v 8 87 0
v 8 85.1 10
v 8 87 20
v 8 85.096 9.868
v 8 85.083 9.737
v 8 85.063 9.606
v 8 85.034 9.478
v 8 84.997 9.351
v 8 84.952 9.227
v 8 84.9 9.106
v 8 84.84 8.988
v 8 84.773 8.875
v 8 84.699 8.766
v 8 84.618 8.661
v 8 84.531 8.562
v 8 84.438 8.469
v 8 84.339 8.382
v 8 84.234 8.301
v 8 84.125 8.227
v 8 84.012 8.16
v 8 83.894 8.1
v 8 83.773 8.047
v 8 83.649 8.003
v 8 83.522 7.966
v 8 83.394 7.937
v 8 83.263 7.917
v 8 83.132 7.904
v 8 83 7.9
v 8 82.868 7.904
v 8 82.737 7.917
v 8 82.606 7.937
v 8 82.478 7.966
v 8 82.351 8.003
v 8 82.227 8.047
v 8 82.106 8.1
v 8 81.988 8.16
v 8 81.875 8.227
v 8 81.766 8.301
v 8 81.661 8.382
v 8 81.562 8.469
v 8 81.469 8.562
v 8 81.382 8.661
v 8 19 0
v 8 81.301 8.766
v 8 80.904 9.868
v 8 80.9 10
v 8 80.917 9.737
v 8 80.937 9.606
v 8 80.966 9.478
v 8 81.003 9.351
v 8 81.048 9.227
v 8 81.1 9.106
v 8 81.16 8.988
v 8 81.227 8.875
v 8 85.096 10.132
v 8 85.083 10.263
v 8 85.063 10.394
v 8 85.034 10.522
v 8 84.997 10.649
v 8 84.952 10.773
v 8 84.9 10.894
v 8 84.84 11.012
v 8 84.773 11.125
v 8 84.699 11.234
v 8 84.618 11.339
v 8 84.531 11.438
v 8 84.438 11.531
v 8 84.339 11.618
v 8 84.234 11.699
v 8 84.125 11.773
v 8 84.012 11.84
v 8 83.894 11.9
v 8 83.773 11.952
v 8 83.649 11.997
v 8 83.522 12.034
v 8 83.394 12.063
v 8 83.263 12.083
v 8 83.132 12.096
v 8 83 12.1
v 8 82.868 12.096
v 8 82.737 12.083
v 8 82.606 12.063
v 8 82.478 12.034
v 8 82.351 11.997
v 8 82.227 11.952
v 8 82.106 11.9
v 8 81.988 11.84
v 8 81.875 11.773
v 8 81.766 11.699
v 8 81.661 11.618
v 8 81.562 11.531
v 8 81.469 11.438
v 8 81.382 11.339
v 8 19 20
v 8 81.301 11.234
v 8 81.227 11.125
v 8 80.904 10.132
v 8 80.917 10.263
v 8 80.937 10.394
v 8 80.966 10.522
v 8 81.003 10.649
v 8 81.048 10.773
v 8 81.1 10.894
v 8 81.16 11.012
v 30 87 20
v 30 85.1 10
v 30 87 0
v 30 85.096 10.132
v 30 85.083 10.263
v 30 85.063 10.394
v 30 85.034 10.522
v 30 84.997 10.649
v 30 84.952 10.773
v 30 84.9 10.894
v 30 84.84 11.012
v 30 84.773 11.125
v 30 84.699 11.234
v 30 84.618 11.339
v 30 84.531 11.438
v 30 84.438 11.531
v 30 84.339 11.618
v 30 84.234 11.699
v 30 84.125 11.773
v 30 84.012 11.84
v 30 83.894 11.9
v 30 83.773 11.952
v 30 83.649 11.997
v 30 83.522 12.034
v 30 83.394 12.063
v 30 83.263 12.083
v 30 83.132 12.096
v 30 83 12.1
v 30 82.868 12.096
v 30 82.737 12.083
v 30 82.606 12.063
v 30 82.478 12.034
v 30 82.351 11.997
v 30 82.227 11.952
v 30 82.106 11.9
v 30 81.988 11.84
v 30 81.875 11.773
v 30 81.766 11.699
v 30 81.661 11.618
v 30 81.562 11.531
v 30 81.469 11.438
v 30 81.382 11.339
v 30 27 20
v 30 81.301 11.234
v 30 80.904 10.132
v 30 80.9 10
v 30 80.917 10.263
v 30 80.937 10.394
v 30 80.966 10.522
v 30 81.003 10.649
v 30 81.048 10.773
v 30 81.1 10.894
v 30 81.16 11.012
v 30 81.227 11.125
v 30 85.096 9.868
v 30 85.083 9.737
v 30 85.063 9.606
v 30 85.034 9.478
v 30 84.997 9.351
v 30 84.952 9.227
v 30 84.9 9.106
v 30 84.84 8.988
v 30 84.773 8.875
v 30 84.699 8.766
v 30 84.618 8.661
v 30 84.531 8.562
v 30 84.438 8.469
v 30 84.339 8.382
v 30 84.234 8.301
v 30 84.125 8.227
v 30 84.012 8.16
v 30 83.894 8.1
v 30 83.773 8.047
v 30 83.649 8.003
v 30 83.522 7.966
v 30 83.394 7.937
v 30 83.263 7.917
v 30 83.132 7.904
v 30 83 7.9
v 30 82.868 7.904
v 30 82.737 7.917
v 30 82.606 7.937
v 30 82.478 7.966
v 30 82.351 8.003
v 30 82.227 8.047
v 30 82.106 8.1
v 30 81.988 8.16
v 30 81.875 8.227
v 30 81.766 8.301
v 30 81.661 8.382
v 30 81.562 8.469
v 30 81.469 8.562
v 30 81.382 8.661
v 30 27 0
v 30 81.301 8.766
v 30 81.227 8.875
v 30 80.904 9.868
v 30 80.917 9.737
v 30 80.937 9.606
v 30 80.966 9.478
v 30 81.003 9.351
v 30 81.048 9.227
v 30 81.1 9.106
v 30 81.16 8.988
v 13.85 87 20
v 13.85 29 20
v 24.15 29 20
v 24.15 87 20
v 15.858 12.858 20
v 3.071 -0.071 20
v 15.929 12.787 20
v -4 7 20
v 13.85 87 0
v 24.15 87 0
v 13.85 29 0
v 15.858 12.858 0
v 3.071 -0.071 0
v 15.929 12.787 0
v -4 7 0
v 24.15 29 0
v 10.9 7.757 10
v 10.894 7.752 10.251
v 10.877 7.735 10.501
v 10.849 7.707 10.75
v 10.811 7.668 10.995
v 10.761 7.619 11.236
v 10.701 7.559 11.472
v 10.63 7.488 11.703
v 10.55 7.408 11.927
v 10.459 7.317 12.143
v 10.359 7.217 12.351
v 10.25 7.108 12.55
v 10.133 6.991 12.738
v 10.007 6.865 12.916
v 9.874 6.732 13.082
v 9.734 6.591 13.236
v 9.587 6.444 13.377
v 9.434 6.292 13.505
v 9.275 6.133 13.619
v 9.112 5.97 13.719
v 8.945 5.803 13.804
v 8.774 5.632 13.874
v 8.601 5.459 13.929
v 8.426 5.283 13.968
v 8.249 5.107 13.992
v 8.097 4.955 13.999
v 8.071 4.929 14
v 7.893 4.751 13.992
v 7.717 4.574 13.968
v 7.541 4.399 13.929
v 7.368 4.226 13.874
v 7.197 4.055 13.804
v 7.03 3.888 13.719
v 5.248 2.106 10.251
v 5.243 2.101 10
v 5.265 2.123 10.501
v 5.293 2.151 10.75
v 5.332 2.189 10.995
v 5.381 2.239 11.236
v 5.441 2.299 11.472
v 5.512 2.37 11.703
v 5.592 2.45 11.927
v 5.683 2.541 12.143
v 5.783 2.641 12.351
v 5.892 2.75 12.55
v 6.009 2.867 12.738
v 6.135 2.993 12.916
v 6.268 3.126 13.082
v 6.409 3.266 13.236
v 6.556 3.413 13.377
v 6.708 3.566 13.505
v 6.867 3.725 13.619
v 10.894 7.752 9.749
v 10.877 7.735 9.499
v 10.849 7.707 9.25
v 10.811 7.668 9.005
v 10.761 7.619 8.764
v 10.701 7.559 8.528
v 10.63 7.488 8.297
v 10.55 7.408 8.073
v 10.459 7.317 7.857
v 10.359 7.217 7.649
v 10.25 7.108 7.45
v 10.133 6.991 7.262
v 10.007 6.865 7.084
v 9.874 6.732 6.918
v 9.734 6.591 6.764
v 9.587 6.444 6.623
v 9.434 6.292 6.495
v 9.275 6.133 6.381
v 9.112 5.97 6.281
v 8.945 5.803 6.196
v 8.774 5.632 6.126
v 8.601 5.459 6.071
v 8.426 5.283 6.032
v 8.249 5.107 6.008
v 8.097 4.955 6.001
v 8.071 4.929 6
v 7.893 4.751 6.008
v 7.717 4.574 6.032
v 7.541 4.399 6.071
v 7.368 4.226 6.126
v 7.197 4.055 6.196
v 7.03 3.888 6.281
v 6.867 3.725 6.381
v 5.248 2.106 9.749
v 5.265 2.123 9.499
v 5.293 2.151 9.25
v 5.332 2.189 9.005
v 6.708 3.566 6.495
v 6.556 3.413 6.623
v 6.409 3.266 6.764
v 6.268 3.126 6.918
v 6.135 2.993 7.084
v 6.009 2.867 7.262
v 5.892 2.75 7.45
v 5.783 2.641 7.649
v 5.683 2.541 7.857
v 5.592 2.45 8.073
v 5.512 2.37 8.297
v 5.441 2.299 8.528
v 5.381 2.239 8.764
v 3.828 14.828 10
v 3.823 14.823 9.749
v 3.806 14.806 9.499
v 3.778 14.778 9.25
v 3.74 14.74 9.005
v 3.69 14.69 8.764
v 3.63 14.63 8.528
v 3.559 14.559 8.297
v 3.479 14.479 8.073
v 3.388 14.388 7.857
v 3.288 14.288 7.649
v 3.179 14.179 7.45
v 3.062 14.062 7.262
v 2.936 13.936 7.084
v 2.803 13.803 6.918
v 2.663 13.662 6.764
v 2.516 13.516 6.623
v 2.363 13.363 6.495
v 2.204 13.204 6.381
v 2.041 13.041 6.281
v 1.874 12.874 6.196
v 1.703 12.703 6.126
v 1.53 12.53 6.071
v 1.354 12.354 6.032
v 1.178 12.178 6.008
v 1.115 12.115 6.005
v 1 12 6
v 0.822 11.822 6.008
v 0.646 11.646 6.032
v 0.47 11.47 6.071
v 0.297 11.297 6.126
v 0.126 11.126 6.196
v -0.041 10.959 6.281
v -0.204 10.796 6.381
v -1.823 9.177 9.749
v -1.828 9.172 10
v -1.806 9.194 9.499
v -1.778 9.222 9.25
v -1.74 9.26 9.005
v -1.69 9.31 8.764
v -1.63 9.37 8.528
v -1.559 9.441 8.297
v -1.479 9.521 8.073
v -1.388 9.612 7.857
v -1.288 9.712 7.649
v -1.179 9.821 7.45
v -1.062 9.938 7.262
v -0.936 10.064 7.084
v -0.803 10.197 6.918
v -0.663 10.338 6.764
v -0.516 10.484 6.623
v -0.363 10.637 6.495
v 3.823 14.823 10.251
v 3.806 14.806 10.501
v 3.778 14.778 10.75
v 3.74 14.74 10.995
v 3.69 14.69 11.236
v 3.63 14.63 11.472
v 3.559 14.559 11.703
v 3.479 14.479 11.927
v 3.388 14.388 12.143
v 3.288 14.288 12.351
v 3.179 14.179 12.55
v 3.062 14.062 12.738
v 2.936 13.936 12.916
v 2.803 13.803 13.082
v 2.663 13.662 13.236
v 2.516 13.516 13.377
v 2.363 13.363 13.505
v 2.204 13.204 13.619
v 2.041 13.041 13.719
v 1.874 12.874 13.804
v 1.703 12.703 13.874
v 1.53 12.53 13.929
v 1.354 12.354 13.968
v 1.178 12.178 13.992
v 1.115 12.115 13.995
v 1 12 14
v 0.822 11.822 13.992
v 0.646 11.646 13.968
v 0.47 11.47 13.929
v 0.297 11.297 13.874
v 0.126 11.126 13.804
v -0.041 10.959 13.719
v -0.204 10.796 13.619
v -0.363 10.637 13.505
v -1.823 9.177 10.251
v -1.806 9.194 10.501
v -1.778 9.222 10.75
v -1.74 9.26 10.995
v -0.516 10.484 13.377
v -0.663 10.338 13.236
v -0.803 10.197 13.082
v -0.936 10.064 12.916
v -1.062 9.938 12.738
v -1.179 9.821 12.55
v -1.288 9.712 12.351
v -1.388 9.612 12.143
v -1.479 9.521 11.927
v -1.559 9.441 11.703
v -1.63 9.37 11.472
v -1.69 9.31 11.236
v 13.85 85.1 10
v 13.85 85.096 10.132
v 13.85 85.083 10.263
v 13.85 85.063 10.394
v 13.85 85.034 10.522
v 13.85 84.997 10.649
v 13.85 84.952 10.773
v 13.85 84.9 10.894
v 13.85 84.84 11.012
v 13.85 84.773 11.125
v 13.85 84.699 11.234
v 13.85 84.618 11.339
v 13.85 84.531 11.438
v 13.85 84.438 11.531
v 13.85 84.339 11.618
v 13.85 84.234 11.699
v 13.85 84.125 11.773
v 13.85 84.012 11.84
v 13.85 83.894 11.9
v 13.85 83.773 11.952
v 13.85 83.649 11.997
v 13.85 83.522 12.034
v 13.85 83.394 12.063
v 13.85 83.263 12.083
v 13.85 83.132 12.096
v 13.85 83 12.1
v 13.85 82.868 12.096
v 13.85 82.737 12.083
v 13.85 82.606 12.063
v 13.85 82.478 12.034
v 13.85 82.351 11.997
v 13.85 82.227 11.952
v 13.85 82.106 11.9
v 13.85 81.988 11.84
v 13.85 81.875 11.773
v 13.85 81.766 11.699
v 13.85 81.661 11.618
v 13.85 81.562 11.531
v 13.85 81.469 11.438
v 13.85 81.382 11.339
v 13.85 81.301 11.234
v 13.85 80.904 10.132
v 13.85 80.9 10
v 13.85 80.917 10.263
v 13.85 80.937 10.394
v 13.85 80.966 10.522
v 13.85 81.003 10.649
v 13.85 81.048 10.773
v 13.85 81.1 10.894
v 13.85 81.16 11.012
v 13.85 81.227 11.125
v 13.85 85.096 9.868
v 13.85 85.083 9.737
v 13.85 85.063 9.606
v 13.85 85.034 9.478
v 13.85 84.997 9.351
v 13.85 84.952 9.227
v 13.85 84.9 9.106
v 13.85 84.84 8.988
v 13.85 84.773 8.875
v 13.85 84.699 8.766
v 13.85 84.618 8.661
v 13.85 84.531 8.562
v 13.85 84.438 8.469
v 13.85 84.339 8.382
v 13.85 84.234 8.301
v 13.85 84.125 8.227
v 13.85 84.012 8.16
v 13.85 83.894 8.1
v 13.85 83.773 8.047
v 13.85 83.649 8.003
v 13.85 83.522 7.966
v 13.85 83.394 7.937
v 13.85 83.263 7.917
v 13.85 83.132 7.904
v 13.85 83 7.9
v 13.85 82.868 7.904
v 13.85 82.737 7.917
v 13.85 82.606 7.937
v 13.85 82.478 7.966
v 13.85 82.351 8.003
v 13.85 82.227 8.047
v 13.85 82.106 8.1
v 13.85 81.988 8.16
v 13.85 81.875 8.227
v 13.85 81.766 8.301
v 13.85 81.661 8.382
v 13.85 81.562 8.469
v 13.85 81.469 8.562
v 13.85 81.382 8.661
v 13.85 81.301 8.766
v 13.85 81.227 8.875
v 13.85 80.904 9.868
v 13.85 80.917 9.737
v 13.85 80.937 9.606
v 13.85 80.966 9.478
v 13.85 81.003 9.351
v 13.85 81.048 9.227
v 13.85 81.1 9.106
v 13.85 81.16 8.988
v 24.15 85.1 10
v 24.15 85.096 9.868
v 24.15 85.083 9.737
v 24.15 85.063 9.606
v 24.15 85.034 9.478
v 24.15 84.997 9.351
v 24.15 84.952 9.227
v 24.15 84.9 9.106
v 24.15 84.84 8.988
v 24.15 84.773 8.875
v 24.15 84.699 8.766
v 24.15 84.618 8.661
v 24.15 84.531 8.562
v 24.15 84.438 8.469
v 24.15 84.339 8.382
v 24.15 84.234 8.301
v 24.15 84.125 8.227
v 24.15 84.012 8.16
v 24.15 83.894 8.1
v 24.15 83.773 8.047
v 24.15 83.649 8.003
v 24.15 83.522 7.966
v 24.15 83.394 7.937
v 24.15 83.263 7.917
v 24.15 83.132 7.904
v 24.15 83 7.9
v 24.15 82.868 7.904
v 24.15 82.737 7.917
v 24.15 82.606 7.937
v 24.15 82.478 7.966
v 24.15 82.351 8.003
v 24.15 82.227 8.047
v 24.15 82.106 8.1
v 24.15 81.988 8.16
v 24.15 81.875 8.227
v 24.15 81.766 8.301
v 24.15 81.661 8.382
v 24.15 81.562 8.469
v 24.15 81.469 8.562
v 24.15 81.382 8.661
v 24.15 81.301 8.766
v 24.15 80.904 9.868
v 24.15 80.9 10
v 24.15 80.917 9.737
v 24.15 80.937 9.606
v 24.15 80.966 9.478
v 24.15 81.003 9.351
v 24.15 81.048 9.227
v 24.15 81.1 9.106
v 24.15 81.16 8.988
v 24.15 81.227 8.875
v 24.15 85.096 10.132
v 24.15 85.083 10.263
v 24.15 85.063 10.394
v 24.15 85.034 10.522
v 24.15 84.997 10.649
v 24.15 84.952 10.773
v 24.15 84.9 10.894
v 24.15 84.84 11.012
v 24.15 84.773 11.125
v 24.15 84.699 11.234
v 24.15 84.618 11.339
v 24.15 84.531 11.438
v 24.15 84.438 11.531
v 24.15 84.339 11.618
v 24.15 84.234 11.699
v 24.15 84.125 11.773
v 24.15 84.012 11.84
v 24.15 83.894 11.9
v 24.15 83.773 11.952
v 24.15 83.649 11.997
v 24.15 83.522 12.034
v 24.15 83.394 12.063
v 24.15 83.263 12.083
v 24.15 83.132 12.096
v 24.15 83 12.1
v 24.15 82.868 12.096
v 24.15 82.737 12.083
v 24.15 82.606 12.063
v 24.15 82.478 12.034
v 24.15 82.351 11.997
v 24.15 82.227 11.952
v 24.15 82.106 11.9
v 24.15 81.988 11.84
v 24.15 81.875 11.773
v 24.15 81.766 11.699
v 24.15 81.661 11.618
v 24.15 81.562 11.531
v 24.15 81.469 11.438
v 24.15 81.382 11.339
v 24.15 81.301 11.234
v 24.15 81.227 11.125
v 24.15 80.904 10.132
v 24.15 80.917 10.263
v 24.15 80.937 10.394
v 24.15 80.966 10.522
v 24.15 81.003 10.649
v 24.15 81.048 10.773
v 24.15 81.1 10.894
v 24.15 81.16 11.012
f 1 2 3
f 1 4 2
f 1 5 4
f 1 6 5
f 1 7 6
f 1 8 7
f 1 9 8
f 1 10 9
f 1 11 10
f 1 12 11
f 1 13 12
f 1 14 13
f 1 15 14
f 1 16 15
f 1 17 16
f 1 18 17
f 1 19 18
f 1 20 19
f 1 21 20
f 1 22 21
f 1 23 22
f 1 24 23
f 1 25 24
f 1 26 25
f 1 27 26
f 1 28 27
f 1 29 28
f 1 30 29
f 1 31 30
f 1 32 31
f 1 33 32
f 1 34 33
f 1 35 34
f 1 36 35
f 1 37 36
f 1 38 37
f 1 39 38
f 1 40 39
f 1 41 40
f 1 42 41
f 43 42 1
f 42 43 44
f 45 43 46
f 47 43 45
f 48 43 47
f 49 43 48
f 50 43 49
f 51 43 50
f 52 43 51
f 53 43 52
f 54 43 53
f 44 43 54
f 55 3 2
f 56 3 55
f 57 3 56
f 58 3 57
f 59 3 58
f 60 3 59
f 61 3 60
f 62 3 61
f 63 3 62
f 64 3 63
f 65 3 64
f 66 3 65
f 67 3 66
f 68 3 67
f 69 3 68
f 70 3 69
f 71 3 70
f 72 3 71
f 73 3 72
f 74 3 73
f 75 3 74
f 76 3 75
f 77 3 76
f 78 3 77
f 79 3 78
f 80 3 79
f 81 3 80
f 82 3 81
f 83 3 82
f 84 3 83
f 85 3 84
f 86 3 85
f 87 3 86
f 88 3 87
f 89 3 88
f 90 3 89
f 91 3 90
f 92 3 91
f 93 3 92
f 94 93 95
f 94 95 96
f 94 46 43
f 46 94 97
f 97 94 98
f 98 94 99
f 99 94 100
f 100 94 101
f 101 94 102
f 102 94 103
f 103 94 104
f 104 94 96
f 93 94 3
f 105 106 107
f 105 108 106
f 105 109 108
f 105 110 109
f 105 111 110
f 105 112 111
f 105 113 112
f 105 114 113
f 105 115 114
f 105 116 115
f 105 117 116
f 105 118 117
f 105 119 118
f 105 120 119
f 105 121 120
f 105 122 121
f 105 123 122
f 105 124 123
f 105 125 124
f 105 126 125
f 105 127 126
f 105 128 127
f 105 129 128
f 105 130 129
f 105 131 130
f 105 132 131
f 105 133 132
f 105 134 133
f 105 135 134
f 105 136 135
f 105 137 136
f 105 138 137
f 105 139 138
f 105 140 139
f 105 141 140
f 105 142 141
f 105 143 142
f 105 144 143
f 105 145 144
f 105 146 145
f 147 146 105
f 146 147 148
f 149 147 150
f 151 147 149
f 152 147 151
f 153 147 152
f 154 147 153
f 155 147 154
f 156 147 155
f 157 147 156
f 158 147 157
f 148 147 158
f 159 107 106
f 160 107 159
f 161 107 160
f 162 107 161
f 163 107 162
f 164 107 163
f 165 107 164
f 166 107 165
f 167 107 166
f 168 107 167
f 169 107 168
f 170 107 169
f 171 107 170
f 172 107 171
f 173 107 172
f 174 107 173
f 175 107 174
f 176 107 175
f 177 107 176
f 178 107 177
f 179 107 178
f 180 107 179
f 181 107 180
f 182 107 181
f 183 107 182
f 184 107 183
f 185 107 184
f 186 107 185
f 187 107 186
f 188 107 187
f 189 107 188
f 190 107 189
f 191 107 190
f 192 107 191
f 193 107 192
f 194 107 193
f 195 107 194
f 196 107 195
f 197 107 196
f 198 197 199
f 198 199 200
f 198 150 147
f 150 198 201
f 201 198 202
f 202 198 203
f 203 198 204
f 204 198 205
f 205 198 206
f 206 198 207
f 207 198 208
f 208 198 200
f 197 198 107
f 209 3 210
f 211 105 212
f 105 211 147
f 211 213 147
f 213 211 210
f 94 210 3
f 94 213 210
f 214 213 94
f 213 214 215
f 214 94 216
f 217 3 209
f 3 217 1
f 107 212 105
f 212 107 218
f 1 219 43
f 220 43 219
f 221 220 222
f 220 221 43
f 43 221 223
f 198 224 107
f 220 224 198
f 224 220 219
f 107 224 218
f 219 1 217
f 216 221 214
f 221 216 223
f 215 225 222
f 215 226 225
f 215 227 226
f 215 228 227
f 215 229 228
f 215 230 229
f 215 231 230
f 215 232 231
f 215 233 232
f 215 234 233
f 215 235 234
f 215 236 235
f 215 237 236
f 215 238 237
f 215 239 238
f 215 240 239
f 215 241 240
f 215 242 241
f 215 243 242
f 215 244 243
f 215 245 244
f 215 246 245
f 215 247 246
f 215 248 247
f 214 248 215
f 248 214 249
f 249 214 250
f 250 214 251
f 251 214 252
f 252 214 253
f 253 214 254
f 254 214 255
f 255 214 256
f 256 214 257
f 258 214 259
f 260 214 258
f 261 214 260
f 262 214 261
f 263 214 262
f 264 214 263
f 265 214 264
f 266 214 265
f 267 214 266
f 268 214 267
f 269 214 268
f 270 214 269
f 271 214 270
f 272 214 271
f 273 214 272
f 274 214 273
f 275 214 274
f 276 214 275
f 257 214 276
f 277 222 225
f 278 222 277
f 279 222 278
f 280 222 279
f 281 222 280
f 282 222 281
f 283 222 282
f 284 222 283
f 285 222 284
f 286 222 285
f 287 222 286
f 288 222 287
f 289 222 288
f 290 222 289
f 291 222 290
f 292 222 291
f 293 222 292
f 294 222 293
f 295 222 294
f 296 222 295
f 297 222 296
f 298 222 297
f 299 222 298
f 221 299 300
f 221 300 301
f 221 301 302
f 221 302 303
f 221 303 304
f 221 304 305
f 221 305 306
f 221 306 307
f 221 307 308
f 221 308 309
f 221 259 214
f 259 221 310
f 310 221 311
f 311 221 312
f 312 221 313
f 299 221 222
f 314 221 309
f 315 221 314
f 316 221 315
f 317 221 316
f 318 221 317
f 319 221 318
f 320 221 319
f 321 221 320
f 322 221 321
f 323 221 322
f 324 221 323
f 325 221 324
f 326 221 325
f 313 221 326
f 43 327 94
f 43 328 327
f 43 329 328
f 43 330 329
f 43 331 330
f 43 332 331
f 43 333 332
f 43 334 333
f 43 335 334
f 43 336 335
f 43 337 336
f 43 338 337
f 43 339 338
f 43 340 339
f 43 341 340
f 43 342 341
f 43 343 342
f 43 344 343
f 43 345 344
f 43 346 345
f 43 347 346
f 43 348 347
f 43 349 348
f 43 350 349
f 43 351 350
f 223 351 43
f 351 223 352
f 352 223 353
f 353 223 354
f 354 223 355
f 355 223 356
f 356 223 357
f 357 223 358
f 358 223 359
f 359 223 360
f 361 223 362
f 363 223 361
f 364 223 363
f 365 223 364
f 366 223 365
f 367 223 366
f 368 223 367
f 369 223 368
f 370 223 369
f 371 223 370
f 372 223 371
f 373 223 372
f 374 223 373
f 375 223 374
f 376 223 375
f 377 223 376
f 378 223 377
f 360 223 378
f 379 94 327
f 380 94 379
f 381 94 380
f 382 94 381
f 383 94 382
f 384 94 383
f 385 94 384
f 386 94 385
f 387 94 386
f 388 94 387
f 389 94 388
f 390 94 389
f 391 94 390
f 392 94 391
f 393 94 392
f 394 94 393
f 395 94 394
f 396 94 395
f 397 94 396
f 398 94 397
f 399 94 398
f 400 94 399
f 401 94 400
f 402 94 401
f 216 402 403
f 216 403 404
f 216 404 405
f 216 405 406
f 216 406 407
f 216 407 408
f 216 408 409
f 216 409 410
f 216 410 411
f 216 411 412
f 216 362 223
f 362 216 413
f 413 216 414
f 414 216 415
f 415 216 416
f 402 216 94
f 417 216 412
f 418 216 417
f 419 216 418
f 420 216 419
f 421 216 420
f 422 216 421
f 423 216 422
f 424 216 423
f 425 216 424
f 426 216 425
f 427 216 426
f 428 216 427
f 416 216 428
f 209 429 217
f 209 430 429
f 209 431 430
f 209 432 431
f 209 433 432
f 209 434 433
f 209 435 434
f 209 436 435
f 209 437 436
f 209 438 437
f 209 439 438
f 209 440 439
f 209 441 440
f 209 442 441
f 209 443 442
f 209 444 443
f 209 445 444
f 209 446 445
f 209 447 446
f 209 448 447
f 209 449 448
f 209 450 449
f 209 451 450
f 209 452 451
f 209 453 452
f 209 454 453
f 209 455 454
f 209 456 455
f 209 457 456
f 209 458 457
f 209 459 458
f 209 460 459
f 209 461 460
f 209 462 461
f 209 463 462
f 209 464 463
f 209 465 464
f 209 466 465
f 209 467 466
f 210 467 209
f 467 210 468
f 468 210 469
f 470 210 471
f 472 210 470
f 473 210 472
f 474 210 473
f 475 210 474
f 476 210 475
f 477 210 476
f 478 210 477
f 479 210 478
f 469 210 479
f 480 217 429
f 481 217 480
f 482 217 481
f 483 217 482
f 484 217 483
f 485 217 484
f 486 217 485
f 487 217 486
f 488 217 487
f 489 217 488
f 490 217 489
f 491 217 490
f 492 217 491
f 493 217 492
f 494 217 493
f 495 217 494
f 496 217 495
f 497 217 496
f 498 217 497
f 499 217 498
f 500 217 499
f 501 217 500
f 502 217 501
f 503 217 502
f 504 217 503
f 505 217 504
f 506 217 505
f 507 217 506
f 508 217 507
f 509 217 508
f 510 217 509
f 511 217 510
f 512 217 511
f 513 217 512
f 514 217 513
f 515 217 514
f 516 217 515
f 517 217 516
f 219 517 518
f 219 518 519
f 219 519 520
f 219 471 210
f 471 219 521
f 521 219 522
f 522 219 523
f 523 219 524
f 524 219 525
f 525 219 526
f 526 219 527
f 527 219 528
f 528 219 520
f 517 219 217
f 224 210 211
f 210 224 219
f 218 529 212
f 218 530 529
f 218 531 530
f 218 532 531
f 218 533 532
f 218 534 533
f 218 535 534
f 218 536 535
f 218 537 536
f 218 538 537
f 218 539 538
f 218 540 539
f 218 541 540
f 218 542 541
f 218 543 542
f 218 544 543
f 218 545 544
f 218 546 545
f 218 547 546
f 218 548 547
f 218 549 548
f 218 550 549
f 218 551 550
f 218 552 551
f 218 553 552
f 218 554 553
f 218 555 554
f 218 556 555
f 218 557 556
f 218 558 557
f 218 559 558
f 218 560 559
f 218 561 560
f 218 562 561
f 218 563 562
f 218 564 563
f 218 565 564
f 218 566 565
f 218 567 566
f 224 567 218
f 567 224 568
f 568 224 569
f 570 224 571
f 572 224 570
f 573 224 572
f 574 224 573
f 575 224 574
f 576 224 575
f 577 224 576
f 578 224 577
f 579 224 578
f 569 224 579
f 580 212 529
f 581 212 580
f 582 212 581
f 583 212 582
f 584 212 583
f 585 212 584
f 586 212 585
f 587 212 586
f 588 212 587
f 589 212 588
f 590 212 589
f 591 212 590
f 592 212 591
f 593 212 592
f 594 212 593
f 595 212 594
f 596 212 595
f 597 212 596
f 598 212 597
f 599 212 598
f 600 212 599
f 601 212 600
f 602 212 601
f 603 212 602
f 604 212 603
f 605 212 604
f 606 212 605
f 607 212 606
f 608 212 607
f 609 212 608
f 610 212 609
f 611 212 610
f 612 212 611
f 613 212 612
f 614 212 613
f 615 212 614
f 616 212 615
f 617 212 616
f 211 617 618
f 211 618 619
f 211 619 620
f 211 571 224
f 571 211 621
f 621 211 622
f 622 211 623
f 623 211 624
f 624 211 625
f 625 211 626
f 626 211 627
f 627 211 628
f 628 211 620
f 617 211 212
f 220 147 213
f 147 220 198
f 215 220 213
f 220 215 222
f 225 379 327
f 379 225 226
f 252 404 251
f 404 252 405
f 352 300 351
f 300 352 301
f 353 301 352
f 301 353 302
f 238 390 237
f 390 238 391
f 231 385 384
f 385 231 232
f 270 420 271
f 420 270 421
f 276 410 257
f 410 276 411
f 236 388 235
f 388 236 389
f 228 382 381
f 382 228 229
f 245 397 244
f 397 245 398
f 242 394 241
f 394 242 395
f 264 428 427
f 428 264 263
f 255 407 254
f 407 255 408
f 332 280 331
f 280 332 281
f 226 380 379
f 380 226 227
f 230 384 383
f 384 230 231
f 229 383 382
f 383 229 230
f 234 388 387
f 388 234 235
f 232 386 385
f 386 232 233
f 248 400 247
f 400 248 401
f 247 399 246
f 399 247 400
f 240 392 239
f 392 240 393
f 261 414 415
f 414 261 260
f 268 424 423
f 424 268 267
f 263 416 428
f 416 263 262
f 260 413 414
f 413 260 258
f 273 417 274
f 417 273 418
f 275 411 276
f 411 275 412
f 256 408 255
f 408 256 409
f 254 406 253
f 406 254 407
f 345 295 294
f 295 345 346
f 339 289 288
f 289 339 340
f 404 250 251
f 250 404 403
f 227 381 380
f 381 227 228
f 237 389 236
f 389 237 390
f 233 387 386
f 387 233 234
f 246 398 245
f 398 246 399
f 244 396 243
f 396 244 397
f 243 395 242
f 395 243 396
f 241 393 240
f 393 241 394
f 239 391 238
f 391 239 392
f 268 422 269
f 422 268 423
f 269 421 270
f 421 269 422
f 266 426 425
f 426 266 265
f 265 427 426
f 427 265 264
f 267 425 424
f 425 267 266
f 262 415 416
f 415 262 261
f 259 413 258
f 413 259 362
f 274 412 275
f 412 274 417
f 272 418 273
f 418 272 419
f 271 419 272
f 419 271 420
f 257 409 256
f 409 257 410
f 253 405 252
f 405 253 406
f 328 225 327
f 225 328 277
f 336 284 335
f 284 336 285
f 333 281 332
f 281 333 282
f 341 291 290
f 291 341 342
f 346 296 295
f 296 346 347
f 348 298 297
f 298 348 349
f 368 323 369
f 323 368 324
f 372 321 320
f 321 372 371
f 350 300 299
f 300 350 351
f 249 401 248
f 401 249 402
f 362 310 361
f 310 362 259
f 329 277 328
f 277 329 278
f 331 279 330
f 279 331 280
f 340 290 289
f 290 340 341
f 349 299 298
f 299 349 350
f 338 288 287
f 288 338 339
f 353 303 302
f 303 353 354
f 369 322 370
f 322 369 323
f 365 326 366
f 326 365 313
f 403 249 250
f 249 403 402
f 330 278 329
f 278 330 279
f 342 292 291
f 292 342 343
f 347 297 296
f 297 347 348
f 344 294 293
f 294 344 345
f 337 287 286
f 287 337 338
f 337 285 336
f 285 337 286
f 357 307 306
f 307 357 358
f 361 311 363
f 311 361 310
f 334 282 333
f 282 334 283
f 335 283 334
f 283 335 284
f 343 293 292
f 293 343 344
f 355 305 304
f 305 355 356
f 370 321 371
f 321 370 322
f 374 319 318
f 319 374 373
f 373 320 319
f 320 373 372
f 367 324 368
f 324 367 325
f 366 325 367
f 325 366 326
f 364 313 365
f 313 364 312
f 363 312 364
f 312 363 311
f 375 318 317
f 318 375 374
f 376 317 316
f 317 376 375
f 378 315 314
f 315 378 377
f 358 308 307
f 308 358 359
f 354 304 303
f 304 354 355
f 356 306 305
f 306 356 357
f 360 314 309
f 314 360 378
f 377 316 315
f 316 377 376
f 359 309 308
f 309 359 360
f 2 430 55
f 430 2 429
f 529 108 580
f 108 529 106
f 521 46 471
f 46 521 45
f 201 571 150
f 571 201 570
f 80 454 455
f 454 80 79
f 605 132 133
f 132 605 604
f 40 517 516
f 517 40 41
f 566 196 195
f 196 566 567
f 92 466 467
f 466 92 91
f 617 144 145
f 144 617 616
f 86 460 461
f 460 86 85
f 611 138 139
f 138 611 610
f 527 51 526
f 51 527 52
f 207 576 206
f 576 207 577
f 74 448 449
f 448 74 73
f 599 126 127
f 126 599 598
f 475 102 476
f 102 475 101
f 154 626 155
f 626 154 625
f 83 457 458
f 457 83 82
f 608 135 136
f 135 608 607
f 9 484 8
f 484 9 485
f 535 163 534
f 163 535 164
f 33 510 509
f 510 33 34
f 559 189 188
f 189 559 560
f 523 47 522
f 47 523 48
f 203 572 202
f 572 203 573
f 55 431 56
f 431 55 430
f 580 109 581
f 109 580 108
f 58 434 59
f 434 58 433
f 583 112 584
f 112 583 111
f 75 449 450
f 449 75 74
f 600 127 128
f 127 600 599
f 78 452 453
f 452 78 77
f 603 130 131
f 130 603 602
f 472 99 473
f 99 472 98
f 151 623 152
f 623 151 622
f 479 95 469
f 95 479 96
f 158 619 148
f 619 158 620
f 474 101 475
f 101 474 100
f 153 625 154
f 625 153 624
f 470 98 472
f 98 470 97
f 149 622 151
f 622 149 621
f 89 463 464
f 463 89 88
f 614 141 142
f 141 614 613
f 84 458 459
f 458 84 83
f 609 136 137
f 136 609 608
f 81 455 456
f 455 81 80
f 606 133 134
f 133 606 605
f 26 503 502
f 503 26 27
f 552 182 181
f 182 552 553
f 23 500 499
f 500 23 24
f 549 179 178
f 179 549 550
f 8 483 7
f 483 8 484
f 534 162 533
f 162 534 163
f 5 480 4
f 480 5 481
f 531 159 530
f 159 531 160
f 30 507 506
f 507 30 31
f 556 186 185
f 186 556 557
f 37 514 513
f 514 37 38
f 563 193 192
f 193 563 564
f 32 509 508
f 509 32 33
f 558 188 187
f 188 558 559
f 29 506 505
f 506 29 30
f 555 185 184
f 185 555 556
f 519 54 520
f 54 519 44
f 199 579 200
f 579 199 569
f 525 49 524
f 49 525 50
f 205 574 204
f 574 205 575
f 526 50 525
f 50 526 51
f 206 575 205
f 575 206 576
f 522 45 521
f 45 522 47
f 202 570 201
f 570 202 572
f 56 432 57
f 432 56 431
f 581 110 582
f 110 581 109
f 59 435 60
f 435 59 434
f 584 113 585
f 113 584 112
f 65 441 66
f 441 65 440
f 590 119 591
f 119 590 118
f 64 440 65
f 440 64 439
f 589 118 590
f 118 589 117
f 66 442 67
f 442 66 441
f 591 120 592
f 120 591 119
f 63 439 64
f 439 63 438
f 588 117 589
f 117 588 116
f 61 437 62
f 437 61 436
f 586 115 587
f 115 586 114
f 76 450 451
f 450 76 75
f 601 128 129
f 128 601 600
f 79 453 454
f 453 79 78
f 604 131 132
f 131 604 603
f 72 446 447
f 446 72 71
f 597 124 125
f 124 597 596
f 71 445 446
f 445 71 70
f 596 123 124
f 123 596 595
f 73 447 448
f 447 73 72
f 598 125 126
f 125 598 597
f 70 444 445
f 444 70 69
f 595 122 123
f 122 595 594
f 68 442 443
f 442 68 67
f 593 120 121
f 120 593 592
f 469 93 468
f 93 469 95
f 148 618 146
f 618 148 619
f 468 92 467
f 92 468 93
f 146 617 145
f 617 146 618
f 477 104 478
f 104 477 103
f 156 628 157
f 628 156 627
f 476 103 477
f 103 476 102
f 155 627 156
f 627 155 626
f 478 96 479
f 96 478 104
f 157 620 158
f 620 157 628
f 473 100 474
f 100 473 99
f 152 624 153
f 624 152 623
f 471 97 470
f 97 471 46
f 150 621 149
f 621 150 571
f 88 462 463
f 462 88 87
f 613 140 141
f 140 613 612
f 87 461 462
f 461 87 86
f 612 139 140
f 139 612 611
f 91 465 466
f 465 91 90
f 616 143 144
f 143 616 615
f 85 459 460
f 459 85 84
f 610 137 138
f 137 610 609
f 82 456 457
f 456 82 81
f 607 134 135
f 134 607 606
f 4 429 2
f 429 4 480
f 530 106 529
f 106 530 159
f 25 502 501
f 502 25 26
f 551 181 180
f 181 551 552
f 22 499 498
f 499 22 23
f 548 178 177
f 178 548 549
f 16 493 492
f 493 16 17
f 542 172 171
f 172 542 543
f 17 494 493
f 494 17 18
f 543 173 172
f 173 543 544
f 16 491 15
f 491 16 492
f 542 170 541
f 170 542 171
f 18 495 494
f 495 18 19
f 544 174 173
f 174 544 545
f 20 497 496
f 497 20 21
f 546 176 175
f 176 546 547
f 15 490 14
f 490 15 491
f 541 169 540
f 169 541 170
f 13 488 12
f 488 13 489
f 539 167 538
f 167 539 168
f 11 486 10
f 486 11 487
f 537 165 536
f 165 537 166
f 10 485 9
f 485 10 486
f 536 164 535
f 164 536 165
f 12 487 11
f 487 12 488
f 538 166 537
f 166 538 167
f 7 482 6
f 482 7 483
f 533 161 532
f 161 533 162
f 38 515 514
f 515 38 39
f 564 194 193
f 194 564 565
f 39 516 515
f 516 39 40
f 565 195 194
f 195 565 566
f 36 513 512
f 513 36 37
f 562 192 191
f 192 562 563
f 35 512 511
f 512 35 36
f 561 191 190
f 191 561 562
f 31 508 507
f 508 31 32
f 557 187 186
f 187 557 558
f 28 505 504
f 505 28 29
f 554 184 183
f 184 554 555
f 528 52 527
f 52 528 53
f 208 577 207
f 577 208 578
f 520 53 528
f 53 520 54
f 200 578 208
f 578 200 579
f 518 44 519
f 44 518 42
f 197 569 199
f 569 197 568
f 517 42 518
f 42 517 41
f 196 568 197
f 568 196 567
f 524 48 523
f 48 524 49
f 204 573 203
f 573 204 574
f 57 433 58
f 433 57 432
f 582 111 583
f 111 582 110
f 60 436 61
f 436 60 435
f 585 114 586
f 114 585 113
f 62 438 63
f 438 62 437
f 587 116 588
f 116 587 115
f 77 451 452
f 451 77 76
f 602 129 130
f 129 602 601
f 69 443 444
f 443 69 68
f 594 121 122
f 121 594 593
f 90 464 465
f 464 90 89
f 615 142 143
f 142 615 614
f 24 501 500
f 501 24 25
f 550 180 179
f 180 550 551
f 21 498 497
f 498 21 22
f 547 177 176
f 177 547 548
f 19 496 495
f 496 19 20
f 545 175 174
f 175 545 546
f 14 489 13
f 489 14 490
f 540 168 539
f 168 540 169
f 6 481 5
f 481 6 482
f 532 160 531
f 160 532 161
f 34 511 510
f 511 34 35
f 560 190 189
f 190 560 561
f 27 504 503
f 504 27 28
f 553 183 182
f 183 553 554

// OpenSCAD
//Mark Benson
// CC NC 2013
//Christian Ege
// Modified 2014-09-07
// Modified by Peter Ivanov <ivanovp@gmail.com>, 2018-06-09
//
//Prusa i3 Spool holder
//
//Shaft to i3 plate mount



translate([10,47,0]) rotate(a=90, v=[1,0,0]) difference()
{
	union()
	{
	translate([-2.0,0,-40]) cube([22,20,70]);
	translate([-14,0,40]) rotate([0,45,0]) cube([30,20,10]);
   
	}

	union()

	union()
	{
	translate([-2.0 + 22 / 2 - 10.3 / 2,0,-40]) cube([10.3,30,58]);
	translate([20,0,20]) rotate(a=-45, v=[0,1,0]) cube([20,20,20]);
	translate([-14,10,30]) rotate(a=45, v=[0,1,0]) cylinder(r=4.0, h=20, $fn=100);
	#translate([-5,10,-36]) rotate(a=90, v=[0,1,0]) cylinder(r=2.1, h=30, $fn=100);
	//rotate([0,90,0]) translate([26,10,-5]) cylinder(r=1.8, h=25, $fn=100);
	}
}

		//main body of part
		//union()
		//{
		//	cube([14,20,14]);
		//	translate([0,20,0]) rotate([45,0,0]) cube([14,18,14]);
		//}

		//splindle cut away
		//union()
		//{
		//	translate([-3,3,8]) cube([20,8,10]);
		//	translate([-3,7,8]) rotate(a=90, v=[0,1,0]) cylinder(r=4, h=20);
		//}

		//shaft cut out
		//translate([7,37,0]) rotate(a=45, v=[1,0,0]) cylinder(r=3.5, h=30);
